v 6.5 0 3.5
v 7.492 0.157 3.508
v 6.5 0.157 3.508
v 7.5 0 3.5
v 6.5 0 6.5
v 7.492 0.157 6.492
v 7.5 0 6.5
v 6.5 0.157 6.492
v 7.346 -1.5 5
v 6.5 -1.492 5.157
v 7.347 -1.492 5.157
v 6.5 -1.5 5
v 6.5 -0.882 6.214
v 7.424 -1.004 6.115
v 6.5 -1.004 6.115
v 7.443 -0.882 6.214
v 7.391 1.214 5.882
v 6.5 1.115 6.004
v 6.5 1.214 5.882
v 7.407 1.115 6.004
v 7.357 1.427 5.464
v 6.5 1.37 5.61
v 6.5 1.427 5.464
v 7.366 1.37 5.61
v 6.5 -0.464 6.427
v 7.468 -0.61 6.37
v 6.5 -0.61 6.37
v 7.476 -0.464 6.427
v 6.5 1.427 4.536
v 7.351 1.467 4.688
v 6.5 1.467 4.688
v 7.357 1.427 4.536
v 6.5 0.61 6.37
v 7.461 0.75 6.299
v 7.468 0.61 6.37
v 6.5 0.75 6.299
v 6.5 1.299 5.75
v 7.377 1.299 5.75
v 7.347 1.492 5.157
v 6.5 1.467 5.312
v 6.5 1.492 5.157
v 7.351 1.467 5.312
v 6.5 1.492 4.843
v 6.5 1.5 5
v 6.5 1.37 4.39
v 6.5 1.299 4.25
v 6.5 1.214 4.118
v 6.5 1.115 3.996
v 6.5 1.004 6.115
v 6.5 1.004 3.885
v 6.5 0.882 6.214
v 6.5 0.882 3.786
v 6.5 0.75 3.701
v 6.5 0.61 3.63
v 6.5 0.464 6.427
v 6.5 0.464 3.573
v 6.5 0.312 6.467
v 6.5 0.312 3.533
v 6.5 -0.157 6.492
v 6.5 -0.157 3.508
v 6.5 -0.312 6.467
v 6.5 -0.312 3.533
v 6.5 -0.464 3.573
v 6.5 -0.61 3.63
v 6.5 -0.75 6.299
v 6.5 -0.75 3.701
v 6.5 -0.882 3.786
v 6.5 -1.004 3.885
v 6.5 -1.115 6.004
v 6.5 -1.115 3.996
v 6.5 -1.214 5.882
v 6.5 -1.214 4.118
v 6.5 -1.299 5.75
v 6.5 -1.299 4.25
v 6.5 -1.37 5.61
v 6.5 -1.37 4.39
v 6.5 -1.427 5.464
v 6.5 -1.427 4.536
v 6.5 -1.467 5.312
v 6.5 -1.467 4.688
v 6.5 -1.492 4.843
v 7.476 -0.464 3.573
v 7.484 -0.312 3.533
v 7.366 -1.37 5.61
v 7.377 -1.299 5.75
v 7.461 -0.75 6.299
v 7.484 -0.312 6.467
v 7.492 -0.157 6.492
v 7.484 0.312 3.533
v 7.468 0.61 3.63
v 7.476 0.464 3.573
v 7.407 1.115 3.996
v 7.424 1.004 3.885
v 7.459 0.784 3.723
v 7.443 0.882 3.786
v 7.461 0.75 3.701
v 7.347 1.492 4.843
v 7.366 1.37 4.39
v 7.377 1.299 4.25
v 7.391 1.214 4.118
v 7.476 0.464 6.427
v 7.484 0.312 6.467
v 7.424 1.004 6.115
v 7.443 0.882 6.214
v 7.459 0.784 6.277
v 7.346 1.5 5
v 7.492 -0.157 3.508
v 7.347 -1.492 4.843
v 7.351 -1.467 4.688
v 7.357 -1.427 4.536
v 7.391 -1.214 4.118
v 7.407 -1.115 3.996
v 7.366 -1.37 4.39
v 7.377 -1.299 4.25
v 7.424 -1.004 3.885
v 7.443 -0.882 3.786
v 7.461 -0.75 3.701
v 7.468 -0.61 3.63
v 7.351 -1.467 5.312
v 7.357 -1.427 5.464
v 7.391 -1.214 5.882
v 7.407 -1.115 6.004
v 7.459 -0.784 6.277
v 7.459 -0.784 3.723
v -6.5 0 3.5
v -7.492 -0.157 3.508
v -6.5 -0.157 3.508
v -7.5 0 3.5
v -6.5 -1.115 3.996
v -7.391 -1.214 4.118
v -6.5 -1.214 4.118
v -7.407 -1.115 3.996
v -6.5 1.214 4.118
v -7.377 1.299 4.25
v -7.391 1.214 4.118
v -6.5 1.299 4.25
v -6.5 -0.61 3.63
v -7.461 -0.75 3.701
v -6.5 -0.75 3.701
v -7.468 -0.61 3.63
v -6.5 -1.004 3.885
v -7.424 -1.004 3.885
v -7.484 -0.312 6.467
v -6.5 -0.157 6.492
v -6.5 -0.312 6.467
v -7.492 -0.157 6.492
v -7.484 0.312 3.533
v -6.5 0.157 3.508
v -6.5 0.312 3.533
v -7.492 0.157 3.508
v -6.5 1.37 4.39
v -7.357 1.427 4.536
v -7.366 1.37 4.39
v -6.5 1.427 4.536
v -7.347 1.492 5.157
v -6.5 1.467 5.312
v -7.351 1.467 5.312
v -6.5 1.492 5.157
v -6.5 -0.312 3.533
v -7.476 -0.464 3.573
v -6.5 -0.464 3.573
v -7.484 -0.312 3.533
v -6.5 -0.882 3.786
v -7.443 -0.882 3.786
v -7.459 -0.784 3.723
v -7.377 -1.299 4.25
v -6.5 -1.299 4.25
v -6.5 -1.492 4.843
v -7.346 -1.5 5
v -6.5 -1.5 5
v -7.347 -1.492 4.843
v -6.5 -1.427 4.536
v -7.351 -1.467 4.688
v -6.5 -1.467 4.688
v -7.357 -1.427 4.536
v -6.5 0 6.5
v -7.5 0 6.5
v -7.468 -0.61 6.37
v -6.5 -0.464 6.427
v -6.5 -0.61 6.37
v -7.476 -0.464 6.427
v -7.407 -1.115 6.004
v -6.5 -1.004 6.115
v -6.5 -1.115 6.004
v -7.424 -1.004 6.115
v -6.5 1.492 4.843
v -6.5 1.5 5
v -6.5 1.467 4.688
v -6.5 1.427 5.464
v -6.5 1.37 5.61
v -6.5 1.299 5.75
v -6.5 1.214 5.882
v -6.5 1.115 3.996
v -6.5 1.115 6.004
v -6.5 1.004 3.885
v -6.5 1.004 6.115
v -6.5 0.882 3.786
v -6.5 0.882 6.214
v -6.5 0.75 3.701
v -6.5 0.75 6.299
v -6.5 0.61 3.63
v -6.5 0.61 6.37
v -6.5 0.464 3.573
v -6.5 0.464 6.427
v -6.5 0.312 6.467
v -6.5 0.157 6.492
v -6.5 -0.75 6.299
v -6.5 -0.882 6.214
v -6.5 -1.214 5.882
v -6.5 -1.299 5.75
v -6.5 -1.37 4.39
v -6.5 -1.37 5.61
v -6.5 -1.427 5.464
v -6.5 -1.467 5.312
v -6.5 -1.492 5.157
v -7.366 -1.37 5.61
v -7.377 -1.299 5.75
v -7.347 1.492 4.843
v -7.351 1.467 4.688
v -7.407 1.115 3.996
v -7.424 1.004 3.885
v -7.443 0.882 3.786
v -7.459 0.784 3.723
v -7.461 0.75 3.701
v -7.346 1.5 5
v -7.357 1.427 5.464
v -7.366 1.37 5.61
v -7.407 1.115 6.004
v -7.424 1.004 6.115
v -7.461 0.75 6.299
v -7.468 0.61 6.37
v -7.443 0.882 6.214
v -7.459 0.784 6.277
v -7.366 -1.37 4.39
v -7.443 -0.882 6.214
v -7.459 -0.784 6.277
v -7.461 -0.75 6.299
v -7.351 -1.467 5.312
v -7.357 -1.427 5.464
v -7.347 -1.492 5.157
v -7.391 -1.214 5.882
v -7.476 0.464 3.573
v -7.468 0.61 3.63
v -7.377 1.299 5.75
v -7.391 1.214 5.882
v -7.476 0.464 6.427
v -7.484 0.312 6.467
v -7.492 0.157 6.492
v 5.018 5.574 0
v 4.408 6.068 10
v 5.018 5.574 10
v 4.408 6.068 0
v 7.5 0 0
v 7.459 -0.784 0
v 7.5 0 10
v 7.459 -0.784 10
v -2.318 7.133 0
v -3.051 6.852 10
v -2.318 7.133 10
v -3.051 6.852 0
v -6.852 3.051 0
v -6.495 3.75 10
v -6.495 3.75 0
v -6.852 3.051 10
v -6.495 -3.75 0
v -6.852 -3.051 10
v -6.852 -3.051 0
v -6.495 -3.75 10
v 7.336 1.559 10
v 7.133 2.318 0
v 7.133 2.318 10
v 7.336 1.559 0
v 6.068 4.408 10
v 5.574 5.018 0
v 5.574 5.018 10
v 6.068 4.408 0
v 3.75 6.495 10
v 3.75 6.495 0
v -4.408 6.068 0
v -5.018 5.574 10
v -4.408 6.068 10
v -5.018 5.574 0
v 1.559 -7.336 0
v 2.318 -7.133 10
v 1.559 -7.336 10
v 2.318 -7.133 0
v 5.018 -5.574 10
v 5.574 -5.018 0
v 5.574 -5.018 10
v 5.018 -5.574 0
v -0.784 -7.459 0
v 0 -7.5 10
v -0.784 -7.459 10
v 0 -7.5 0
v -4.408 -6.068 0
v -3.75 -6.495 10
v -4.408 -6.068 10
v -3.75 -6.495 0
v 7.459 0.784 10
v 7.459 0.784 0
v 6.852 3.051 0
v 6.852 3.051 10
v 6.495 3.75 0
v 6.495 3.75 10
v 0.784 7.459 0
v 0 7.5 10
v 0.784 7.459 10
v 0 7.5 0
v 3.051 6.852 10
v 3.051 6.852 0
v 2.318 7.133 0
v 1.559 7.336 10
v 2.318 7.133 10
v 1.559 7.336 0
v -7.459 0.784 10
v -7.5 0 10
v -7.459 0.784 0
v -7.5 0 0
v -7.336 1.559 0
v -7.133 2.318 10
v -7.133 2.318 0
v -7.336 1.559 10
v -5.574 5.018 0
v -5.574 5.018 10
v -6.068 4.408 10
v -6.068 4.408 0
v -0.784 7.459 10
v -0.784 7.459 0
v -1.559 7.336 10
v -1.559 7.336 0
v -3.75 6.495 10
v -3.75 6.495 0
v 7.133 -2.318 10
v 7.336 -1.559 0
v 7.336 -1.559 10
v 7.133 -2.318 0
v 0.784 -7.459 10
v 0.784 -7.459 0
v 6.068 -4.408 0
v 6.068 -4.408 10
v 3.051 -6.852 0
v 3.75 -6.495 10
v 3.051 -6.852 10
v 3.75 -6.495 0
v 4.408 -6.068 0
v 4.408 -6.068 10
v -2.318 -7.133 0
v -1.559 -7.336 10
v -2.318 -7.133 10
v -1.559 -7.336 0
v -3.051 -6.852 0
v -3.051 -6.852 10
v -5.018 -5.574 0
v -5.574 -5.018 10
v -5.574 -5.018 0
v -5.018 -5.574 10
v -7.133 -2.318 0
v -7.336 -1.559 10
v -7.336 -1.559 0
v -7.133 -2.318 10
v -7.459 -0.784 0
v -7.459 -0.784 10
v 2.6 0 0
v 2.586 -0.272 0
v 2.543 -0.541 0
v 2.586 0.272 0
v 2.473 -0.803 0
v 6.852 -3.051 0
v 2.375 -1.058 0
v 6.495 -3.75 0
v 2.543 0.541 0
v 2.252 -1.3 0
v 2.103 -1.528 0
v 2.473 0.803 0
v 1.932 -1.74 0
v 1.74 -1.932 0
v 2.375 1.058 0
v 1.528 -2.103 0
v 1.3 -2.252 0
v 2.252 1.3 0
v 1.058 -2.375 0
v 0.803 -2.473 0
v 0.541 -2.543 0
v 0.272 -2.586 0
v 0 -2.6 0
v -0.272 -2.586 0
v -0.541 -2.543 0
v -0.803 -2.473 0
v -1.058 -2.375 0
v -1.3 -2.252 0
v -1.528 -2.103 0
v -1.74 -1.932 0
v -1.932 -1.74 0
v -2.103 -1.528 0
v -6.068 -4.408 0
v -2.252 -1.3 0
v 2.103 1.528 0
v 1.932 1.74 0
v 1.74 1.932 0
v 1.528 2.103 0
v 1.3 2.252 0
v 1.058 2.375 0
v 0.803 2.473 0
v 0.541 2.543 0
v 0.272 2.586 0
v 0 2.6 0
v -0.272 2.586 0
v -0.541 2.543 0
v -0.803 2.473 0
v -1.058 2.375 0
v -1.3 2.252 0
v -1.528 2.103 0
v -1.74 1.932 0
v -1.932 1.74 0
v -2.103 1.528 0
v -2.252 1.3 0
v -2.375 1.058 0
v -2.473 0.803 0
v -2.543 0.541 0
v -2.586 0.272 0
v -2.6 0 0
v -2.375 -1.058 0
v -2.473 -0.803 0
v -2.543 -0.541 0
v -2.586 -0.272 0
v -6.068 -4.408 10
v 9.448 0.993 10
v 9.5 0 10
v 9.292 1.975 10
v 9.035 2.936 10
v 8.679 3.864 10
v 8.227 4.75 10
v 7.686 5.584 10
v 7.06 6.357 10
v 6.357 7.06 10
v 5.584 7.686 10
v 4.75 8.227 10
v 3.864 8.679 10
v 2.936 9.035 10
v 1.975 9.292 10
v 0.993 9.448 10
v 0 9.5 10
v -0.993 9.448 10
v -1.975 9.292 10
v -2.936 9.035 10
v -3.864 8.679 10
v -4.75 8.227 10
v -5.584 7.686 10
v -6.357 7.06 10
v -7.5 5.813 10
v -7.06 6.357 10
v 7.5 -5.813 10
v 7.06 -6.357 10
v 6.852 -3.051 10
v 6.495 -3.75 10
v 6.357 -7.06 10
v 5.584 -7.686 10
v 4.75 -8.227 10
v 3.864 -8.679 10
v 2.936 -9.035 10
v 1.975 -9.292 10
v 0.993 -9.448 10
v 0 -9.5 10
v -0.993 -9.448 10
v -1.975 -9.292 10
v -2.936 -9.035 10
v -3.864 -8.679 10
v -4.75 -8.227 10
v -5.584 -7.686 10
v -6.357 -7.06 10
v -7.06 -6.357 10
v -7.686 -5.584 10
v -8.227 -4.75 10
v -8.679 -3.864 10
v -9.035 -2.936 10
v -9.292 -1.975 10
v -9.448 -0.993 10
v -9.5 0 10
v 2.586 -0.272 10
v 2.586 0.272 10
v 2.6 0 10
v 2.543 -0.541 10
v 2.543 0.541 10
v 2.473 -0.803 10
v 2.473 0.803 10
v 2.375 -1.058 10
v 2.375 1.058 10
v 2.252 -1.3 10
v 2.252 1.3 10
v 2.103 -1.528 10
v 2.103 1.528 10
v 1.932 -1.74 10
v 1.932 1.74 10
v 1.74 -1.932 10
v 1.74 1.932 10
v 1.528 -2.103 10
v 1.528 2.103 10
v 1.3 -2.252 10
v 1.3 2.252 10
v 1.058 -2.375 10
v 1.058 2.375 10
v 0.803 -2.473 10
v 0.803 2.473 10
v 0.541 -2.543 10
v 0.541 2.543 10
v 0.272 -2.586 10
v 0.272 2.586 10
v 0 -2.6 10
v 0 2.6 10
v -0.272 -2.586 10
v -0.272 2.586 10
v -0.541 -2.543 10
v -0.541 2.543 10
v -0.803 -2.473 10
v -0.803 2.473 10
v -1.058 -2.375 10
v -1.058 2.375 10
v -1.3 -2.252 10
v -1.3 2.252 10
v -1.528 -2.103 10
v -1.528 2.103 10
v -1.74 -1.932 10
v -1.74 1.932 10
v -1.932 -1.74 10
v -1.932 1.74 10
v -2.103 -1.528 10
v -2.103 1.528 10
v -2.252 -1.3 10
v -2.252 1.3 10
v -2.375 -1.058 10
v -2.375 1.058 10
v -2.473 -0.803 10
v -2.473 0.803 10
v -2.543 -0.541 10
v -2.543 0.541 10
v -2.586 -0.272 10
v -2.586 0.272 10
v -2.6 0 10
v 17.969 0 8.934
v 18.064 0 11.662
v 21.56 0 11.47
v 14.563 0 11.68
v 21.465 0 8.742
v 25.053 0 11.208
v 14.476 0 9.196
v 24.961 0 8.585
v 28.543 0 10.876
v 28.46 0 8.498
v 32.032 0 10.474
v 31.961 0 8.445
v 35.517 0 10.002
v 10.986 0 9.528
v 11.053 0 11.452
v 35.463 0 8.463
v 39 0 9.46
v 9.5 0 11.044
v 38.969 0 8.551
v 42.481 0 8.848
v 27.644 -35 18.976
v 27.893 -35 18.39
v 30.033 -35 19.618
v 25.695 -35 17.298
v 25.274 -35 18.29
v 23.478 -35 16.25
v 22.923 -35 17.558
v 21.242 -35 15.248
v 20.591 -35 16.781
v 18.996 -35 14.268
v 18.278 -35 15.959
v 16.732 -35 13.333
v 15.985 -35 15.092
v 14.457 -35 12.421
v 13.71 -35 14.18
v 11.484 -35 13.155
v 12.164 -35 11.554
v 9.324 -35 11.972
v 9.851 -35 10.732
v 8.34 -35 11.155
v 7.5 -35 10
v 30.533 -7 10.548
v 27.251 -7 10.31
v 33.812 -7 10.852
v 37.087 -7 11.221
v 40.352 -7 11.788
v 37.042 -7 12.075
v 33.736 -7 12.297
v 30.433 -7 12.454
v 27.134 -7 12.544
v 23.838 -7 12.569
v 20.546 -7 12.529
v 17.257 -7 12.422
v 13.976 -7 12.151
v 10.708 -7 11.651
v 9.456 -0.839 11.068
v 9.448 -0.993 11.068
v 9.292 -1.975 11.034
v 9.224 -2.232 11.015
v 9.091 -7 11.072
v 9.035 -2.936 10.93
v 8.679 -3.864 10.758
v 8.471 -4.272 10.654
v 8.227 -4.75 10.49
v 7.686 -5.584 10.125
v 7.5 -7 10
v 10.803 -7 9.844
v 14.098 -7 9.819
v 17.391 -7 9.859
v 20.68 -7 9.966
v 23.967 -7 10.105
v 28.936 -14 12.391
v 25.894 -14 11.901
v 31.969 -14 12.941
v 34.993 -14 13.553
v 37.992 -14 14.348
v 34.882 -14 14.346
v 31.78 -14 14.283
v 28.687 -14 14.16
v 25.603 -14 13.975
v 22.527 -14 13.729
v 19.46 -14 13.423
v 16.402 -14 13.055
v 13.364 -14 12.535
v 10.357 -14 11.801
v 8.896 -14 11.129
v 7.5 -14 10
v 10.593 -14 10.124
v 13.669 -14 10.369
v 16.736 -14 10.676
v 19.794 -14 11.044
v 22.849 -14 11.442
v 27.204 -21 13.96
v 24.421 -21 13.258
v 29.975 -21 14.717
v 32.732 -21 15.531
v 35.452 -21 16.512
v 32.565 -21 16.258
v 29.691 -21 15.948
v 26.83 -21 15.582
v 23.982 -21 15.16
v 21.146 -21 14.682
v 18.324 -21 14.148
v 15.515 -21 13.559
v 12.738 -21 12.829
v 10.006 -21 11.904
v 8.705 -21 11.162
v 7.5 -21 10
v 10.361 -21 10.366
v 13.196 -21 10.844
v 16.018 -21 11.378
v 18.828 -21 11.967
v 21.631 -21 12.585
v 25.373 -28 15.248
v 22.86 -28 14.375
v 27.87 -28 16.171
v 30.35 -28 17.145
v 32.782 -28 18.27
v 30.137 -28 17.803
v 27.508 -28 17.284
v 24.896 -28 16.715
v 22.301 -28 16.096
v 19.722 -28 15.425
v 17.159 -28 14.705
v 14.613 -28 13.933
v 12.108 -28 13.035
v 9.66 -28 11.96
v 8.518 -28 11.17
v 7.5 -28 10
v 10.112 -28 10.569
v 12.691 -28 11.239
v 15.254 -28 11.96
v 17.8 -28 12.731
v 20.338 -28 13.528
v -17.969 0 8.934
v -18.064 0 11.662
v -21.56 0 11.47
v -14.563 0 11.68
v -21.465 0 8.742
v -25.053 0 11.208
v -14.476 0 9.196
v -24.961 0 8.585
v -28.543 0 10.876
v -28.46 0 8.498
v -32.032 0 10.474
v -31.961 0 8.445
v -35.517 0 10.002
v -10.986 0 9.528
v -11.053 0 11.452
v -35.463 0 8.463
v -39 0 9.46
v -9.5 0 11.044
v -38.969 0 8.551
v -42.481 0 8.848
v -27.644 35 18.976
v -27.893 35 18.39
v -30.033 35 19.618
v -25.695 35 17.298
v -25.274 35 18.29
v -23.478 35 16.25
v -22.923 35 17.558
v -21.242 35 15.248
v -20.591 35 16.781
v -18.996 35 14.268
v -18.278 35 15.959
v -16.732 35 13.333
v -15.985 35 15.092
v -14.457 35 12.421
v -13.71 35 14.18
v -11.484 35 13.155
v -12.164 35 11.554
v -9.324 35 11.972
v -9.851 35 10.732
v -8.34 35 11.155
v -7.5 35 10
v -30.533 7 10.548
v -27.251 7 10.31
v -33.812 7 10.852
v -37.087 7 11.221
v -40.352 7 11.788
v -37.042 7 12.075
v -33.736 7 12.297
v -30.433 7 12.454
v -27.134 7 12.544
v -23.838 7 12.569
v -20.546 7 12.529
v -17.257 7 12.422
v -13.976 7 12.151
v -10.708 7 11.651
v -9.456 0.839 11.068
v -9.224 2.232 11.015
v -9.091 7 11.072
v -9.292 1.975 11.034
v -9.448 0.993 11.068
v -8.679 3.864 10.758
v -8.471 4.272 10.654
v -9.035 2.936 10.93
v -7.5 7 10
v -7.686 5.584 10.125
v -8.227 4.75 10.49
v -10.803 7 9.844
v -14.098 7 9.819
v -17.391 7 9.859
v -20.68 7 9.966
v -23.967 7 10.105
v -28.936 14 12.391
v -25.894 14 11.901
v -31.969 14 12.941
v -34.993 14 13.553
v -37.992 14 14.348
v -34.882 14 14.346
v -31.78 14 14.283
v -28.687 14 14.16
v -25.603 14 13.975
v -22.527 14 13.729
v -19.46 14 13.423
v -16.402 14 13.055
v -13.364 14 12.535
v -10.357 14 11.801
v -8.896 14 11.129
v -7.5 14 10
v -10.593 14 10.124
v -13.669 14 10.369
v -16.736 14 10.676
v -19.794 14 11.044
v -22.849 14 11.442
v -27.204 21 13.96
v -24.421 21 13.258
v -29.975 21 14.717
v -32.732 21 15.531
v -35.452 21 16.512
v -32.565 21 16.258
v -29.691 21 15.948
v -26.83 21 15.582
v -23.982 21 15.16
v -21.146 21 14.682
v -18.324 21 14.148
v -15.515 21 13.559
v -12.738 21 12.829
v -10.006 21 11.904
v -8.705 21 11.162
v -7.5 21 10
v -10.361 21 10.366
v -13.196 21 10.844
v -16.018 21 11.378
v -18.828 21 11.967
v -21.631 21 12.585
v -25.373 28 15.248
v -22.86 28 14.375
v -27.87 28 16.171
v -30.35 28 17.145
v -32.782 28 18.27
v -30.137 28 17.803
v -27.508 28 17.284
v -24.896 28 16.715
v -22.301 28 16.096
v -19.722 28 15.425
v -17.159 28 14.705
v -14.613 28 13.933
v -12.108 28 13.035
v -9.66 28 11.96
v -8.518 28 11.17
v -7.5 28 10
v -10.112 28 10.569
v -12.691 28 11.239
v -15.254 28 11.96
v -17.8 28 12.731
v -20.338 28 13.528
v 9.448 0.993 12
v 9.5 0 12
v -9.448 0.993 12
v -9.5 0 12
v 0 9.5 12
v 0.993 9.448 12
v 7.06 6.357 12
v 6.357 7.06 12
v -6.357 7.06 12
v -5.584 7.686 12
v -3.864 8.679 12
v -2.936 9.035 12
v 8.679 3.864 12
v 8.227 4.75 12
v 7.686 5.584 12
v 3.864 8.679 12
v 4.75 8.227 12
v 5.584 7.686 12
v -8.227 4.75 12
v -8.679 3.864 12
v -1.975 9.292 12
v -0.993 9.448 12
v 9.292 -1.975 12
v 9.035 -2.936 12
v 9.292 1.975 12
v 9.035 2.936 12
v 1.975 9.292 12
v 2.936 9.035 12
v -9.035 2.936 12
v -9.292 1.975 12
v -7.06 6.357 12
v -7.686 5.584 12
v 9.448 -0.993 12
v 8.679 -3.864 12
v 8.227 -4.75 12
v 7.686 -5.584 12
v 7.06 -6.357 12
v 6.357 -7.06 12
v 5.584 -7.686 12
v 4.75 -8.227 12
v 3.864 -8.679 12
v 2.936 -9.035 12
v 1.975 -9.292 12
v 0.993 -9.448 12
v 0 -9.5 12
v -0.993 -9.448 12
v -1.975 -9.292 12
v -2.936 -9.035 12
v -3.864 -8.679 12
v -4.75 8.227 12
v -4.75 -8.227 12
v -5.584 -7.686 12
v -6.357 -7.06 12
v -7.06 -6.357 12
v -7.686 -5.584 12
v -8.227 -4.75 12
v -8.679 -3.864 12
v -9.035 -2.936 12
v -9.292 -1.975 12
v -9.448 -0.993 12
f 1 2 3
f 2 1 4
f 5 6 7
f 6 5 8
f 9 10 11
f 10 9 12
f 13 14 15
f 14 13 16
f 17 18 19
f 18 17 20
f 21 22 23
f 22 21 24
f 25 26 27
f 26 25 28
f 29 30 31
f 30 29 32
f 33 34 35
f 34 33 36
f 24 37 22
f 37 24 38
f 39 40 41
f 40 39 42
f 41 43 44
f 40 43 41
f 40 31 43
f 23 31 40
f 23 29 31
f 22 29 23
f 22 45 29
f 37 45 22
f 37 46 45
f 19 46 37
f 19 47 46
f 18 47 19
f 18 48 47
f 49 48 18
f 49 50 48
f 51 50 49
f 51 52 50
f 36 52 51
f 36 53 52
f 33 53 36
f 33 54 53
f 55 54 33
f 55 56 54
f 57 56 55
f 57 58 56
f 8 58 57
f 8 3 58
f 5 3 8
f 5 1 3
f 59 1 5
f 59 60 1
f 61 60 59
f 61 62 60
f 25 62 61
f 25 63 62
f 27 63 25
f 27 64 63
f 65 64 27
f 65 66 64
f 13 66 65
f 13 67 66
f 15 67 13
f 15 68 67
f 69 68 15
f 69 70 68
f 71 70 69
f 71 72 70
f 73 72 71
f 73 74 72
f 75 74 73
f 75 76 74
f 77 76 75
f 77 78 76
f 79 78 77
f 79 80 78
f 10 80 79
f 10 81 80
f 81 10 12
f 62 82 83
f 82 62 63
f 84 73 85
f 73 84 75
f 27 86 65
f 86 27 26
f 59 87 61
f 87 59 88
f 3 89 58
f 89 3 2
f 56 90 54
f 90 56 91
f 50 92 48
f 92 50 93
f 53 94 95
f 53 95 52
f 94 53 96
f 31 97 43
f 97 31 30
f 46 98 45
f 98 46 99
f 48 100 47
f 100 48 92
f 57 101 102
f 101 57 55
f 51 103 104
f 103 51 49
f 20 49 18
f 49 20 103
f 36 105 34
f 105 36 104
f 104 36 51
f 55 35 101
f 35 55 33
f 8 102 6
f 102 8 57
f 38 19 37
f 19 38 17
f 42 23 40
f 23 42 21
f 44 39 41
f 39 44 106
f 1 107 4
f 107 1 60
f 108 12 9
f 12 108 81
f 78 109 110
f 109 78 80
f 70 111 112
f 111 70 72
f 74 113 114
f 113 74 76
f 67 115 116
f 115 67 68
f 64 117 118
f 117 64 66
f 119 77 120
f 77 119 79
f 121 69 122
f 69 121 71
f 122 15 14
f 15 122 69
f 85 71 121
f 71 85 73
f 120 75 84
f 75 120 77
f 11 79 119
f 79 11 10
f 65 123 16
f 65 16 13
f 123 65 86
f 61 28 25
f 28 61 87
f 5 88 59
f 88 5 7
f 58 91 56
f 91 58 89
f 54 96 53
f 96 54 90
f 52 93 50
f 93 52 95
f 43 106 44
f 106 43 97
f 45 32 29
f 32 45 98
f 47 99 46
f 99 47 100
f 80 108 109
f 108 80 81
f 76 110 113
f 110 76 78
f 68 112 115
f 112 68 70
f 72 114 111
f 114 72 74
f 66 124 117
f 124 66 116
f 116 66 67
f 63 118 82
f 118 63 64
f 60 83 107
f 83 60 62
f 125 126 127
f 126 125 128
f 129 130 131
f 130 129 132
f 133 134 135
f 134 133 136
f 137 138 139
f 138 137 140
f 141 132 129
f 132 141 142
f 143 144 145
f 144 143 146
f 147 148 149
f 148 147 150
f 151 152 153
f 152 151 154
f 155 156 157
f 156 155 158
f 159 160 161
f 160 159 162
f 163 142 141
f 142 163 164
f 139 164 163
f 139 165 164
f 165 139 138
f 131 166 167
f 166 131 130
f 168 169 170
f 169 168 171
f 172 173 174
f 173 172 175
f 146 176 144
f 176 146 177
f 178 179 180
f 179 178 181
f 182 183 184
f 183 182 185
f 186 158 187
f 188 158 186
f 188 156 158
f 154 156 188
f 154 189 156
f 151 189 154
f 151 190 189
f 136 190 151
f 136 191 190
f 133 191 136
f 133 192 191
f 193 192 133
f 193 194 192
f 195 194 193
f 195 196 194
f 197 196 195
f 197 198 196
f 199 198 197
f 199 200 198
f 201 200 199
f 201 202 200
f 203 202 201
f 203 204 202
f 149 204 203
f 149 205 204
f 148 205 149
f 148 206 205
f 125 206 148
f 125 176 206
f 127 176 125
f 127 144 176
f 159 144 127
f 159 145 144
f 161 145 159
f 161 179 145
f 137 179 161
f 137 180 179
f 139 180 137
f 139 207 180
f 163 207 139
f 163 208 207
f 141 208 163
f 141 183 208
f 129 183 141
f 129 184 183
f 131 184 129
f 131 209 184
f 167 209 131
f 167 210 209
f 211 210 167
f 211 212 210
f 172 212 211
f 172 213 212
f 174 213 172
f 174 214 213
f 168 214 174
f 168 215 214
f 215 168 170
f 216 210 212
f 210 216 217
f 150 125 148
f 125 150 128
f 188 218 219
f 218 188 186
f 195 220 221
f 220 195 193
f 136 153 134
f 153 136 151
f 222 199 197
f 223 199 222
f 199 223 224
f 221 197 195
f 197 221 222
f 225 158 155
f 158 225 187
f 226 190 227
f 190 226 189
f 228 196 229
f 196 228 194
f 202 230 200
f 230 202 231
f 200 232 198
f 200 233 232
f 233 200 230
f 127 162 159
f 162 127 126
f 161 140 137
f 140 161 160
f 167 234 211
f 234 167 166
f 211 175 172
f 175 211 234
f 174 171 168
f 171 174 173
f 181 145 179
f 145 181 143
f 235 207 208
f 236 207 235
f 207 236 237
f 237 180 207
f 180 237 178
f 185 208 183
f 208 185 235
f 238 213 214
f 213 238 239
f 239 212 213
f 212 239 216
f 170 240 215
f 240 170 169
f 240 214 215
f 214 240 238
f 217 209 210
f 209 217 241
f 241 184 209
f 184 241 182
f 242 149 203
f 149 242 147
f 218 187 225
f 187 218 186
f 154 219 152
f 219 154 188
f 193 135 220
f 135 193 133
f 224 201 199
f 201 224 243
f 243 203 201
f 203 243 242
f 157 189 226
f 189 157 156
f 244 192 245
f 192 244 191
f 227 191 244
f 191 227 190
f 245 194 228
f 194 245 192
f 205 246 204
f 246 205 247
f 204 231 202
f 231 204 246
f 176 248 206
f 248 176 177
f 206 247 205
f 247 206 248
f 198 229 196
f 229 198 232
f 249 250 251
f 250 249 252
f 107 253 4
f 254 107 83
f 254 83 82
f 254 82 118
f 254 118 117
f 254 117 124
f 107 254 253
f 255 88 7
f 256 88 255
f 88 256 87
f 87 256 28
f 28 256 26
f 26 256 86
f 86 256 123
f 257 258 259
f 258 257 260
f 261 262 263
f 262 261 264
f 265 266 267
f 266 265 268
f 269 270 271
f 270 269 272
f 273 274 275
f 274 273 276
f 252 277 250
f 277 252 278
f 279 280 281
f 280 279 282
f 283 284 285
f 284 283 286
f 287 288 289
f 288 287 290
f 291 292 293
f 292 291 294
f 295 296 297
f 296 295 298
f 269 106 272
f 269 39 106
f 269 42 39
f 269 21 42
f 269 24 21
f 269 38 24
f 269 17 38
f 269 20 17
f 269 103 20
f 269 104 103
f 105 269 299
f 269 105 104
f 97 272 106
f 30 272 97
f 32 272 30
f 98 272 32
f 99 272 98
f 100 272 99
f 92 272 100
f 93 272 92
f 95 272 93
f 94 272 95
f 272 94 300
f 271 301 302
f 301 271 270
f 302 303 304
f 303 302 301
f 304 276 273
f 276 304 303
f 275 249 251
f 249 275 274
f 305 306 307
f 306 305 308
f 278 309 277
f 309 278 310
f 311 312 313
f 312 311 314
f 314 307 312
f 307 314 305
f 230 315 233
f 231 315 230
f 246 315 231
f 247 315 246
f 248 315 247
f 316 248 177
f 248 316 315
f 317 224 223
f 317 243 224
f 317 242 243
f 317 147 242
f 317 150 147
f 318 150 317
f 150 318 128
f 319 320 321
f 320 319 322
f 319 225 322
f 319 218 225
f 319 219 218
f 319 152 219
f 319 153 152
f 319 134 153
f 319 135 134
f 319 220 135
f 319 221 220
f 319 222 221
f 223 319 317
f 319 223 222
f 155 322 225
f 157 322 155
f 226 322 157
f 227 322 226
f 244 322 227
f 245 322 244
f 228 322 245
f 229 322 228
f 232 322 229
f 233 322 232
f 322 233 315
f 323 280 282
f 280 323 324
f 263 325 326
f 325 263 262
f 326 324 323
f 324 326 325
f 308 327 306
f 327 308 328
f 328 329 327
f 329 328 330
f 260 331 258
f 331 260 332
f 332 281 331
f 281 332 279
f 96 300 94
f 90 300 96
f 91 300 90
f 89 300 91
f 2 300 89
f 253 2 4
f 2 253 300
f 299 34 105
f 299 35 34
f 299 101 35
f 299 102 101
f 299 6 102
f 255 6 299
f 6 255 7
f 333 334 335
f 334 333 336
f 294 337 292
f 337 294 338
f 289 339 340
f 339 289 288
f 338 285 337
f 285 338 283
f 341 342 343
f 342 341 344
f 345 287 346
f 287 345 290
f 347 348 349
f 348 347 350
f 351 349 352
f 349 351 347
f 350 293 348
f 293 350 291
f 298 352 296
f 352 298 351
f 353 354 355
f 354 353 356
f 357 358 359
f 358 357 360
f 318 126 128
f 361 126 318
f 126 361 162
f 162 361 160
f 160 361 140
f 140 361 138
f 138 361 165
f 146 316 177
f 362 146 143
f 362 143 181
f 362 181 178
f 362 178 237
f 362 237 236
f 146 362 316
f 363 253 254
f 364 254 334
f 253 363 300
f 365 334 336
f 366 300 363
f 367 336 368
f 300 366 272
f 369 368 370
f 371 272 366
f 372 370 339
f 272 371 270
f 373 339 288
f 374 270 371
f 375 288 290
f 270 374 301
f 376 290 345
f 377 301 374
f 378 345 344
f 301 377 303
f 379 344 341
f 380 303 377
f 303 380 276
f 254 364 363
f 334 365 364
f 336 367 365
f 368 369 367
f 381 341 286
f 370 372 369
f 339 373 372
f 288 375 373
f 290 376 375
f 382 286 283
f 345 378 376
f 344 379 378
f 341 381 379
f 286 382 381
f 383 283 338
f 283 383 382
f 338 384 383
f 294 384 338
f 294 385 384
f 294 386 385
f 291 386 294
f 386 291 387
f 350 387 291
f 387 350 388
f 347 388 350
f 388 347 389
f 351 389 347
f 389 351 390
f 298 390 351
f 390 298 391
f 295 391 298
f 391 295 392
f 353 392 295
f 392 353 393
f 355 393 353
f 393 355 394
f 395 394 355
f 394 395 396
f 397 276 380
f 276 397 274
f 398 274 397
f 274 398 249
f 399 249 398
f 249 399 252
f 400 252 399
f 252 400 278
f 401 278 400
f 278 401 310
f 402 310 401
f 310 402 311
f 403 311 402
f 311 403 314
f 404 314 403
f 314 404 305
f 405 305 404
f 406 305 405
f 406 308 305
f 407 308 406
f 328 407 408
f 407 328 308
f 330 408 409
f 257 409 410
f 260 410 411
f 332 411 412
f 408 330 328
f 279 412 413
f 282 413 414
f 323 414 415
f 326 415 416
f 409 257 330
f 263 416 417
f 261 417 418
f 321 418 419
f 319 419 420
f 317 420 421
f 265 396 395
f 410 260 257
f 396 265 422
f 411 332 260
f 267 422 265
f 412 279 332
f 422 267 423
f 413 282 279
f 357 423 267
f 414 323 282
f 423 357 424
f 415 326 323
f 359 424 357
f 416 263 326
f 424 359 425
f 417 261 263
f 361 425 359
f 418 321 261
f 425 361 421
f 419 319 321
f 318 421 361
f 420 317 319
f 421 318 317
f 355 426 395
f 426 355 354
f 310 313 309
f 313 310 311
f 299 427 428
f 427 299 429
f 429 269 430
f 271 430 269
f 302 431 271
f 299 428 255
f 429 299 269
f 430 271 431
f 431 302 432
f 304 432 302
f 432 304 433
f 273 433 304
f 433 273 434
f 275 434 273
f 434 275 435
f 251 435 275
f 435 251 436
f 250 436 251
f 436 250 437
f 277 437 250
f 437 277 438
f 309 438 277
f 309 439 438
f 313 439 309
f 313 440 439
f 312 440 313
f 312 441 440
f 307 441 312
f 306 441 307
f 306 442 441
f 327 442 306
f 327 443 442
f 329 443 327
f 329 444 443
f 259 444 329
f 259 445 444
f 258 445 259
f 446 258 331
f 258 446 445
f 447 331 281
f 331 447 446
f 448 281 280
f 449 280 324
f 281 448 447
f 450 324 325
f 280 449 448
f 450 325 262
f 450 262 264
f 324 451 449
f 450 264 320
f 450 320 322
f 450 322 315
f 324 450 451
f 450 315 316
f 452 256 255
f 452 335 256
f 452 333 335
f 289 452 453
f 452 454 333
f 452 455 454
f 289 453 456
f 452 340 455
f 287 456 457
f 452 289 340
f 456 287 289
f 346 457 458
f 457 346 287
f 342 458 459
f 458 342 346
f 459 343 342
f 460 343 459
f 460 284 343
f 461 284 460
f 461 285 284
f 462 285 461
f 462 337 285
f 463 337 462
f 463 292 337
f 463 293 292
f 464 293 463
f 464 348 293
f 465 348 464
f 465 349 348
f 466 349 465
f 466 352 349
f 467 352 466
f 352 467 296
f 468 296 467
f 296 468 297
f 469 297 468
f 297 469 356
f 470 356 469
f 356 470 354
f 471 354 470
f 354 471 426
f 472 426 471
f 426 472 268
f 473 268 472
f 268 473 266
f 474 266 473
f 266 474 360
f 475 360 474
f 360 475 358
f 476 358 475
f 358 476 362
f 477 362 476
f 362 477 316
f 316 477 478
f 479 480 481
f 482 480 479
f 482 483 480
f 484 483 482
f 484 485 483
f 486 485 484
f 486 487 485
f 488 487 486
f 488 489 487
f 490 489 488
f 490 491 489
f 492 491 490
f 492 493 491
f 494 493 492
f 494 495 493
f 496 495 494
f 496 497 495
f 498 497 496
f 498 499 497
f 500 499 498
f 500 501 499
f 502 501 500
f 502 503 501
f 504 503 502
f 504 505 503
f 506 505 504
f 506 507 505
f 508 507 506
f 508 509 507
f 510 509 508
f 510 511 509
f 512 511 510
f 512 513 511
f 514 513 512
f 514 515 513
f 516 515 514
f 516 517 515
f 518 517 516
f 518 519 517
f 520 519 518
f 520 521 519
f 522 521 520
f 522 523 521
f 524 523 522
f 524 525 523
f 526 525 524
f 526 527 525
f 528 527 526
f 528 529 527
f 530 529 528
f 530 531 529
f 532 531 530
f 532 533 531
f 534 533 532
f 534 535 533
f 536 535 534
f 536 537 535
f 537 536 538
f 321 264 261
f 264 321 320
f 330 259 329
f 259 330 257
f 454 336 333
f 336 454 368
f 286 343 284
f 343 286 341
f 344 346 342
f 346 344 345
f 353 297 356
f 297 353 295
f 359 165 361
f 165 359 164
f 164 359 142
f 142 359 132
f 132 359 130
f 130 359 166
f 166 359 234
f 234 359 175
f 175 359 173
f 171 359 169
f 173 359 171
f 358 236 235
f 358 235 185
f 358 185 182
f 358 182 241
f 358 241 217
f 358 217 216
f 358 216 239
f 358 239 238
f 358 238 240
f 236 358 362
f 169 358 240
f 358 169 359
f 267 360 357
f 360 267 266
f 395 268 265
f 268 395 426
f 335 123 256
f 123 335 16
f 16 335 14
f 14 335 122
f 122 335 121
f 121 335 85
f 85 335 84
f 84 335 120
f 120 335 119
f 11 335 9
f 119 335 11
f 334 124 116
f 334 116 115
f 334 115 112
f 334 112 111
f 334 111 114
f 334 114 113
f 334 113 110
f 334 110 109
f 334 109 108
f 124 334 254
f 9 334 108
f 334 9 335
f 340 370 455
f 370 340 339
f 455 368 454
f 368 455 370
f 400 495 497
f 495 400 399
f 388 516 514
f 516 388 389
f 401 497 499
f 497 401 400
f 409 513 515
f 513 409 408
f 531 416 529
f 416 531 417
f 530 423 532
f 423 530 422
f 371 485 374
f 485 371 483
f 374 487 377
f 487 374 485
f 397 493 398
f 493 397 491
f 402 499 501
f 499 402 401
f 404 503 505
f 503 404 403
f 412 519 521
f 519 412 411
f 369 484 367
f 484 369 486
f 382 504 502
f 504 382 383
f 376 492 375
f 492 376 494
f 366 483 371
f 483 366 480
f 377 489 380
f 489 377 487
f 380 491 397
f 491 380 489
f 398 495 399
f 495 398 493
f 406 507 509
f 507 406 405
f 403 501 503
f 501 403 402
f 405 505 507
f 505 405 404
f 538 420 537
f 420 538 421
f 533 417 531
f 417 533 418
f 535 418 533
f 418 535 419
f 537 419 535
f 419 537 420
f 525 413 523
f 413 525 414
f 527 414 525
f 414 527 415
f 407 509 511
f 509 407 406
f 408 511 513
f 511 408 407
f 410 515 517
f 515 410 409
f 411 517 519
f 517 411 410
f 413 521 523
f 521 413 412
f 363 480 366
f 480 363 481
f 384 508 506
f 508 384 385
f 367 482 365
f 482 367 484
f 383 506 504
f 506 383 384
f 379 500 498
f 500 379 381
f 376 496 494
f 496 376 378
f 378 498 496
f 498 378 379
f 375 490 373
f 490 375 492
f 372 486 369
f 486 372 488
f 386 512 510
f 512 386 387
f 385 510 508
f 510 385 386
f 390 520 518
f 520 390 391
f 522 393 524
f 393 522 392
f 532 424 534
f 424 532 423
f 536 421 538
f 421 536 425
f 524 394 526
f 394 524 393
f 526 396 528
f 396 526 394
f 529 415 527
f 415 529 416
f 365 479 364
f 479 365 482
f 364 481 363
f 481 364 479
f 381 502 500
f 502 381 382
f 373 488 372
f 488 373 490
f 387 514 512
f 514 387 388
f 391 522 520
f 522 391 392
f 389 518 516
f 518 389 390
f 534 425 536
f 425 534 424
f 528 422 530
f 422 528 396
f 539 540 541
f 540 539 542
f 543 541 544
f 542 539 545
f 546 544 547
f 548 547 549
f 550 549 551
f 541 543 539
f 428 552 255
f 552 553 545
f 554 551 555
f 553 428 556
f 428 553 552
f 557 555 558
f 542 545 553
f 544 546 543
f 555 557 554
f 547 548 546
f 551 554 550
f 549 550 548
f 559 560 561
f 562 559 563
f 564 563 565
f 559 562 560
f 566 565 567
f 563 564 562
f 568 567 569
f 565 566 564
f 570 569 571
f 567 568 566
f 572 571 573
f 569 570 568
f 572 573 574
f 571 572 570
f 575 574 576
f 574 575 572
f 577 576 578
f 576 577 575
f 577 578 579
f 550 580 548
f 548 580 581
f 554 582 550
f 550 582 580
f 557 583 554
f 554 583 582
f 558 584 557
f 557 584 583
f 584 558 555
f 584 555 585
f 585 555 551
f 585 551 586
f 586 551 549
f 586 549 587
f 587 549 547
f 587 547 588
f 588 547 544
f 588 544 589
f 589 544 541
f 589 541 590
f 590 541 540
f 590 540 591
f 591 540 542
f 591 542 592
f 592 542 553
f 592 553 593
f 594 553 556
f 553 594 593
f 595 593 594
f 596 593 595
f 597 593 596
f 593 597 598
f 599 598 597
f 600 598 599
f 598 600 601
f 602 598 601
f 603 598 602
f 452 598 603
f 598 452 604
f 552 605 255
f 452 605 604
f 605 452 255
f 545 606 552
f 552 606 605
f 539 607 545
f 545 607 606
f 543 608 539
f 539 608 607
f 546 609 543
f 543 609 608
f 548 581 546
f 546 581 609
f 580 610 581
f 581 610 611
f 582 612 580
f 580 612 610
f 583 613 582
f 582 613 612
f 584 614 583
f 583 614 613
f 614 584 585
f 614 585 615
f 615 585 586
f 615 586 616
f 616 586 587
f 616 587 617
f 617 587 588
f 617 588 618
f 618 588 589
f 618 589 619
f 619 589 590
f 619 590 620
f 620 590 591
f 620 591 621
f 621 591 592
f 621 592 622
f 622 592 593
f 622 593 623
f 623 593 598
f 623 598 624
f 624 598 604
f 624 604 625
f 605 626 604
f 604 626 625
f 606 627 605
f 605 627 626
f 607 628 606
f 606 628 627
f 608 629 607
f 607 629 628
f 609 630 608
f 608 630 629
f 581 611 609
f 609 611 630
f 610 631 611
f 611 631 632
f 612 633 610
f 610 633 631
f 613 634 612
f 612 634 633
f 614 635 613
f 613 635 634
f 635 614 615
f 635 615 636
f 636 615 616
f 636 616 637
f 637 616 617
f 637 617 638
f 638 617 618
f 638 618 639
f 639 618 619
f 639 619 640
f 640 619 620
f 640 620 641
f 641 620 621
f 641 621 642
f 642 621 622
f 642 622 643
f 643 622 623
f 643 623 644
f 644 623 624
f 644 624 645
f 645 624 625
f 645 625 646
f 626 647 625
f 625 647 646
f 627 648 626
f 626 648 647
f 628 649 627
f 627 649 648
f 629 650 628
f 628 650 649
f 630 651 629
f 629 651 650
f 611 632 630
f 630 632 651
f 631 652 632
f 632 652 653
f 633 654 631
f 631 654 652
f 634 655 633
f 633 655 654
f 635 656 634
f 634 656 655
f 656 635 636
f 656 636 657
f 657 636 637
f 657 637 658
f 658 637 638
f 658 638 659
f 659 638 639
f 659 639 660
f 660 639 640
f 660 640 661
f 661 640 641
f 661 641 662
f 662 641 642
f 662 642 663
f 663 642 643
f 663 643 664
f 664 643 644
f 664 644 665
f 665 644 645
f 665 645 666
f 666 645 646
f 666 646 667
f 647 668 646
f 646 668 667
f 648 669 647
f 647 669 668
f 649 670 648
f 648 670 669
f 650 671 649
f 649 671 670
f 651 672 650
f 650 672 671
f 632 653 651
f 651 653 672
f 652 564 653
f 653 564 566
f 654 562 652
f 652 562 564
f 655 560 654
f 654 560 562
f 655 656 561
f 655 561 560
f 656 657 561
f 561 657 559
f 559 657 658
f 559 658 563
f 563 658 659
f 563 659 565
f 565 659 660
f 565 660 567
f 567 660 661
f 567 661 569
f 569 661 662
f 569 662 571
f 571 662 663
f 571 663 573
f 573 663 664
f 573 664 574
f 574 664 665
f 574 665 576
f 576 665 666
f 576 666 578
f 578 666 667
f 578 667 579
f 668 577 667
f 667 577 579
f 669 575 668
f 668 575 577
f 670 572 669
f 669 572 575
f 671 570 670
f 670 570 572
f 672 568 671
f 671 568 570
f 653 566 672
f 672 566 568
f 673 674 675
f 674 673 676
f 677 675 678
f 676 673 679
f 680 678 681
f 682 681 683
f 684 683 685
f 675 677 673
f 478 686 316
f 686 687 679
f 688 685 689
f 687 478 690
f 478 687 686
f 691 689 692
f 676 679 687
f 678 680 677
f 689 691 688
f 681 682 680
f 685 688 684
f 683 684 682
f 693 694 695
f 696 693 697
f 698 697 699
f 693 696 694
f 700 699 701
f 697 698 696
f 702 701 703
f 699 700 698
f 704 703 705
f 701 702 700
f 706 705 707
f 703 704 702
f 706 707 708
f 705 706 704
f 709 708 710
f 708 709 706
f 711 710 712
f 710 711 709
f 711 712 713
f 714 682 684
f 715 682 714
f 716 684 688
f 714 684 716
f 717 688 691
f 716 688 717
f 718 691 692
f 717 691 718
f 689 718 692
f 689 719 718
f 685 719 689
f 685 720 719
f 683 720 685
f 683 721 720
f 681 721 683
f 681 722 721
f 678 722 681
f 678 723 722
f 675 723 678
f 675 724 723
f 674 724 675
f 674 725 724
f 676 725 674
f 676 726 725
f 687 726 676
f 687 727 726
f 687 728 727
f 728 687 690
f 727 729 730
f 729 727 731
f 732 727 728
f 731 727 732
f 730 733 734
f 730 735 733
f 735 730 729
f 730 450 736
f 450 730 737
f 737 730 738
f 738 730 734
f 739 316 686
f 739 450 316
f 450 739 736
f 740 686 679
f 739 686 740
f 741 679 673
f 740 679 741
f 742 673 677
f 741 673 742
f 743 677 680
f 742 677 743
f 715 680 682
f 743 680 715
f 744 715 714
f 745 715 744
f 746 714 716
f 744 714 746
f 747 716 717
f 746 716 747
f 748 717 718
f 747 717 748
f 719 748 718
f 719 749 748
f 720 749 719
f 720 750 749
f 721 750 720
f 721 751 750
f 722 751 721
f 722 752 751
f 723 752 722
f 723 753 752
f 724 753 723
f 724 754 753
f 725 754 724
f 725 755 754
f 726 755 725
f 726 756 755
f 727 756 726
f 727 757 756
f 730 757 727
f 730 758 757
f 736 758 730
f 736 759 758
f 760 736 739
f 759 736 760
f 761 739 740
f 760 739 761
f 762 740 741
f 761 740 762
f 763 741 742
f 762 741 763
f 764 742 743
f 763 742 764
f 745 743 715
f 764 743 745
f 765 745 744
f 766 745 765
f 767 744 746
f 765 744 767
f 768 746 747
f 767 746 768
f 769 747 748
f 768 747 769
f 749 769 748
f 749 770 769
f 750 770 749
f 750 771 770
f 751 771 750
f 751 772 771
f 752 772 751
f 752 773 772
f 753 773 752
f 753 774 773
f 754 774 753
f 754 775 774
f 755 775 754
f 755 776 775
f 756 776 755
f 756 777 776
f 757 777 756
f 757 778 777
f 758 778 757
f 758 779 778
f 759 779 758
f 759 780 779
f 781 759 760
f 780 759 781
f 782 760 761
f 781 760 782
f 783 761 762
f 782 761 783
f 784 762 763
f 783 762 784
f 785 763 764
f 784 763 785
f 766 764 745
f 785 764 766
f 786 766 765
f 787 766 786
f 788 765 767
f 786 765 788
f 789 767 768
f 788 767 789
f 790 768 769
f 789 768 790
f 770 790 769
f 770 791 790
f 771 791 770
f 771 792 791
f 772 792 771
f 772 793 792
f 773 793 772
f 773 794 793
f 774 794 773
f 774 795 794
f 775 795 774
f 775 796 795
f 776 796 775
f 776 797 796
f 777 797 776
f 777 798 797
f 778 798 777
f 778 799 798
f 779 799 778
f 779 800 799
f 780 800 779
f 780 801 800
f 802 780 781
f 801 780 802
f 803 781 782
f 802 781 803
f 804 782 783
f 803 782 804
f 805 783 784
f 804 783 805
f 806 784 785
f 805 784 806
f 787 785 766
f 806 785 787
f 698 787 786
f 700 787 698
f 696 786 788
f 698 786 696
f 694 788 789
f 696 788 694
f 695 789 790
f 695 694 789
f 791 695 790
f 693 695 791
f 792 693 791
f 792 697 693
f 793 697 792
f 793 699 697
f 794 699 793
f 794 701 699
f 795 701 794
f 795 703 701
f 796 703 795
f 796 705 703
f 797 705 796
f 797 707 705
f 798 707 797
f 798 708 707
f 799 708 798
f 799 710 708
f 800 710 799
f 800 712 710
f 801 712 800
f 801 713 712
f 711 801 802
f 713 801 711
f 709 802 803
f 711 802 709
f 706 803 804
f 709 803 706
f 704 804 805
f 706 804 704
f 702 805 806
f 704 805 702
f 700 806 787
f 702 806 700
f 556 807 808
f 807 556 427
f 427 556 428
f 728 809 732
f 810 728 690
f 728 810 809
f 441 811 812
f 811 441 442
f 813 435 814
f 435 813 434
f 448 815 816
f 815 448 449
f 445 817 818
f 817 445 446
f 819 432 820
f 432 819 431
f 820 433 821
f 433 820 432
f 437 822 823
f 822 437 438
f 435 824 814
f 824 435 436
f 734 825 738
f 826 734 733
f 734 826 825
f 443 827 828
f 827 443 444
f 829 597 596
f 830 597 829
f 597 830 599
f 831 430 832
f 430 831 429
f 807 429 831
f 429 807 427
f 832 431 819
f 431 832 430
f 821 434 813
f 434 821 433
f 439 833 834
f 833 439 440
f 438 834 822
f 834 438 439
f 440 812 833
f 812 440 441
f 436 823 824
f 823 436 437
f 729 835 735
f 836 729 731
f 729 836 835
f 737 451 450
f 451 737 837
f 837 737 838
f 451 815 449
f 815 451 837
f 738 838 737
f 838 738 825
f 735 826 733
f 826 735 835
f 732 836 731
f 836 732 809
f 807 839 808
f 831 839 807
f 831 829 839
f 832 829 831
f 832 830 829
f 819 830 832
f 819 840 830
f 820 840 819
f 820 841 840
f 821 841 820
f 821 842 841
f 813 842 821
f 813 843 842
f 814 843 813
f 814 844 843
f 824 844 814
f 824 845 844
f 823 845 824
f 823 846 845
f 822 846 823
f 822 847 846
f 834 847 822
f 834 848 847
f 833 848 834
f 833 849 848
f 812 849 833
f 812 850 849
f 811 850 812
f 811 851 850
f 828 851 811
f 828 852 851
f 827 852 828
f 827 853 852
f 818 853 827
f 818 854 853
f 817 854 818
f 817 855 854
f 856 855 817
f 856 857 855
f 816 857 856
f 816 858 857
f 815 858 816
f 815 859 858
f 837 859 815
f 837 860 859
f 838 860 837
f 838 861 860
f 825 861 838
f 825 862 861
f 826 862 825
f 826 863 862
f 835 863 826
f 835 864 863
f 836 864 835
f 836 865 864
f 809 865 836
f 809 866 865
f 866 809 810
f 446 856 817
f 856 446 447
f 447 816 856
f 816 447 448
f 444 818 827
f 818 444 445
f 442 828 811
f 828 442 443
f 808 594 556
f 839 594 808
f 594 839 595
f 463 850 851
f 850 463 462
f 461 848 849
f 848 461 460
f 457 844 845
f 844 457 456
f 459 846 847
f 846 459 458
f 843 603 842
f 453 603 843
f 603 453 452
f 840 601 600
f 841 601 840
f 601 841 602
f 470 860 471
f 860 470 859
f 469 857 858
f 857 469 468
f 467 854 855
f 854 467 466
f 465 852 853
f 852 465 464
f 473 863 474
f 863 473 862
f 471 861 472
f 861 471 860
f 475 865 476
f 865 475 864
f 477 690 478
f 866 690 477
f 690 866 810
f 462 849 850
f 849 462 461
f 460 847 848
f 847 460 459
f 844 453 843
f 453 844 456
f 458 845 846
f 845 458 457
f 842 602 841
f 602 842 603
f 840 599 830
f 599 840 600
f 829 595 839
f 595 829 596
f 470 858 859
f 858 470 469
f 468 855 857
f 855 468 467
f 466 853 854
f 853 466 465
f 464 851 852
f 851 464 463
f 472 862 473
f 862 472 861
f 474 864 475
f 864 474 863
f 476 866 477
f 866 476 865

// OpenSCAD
/*
 * COMPLETE MOTOR + IMPELLER ASSEMBLY
 * For CFD fluid testing and visualization
 * 
 * This model includes:
 *   - Brushless motor (2204-2206 size)
 *   - Motor shaft (5mm)
 *   - Impeller hub
 *   - 3 impeller variants (bladeless, AI-blades, hybrid)
 *   - Mounting plate
 * 
 * Usage:
 *   - Render full assembly: F6
 *   - Export for CFD: Set EXPORT_MODE = "impeller_only"
 *   - Change design: Set IMPELLER_TYPE = "bladeless" | "bladed" | "hybrid"
 */

// ============================================================================
// CONFIGURATION PARAMETERS (AI-Optimizable)
// ============================================================================

// General Settings
$fn = 60;  // Resolution for CFD export (increase to 100 for final)

// Export Mode
EXPORT_MODE = "impeller_only";  // Options: "full_assembly", "impeller_only", "motor_only"

// Impeller Type
IMPELLER_TYPE = "bladed";  // Options: "bladeless", "bladed", "hybrid"

// Motor Specifications (2204-2206 brushless)
MOTOR_DIAMETER = 28;         // mm
MOTOR_HEIGHT = 25;           // mm
MOTOR_SHAFT_DIAMETER = 5;    // mm (standard)
MOTOR_SHAFT_LENGTH = 15;     // mm (extends above motor)
MOTOR_MOUNT_PATTERN = 16;    // mm (16x16 or 19x19 common)
MOTOR_SCREW_DIAMETER = 3;    // M3 screws

// Impeller Parameters - BLADELESS
BLADELESS_OUTER_DIAMETER = 90;    // mm
BLADELESS_AIR_GAP = 0.8;          // mm (optimize: 0.6-1.2)
BLADELESS_THROAT_RATIO = 0.72;    // (optimize: 0.65-0.80)
BLADELESS_EXPANSION_ANGLE = 18;   // degrees (optimize: 12-25)
BLADELESS_RING_THICKNESS = 3;     // mm (optimize: 2-4)
BLADELESS_HEIGHT = 24;            // mm

// Impeller Parameters - BLADED
BLADED_DIAMETER = 85;
BLADED_HUB_DIAMETER = 15;         // mm (optimize: 12-20)
BLADED_BLADE_COUNT = 2;
BLADED_ROOT_CHORD = 35;
BLADED_TIP_CHORD_RATIO = 0.7;    // (optimize: 0.6-0.8)
BLADED_BLADE_THICKNESS = 2;       // mm (optimize: 1.5-3)
BLADED_BLADE_TWIST = -25;
BLADED_ATTACK_ANGLE = -2;
BLADED_BLADE_HEIGHT = 12;         // mm (optimize: 10-15)

// Hub Parameters
HUB_DIAMETER = 15;
HUB_HEIGHT = 10;
HUB_SET_SCREW_DIAMETER = 3;  // M3 set screw

// Mounting Plate
PLATE_SIZE = 50;
PLATE_THICKNESS = 3;

// ============================================================================
// MOTOR MODEL
// ============================================================================

module brushless_motor_2204() {
    color("DarkSlateGray") {
        // Motor can (bell)
        difference() {
            cylinder(h=MOTOR_HEIGHT, d=MOTOR_DIAMETER);
            
            // Hollow inside (weight reduction visualization)
            translate([0, 0, -0.5])
                cylinder(h=MOTOR_HEIGHT - 5, d=MOTOR_DIAMETER - 4);
            
            // Mounting holes
            for(i = [0:3]) {
                rotate([0, 0, i * 90])
                    translate([MOTOR_MOUNT_PATTERN/2, 0, MOTOR_HEIGHT/2])
                        rotate([90, 0, 0])
                            cylinder(h=MOTOR_DIAMETER, d=MOTOR_SCREW_DIAMETER, center=true);
            }
        }
        
        // Motor base
        translate([0, 0, -3])
            cylinder(h=3, d=MOTOR_DIAMETER - 2);
    }
    
    // Motor shaft
    color("Silver")
        translate([0, 0, MOTOR_HEIGHT])
            cylinder(h=MOTOR_SHAFT_LENGTH, d=MOTOR_SHAFT_DIAMETER);
    
    // Shaft tip (for hub attachment)
    color("Silver")
        translate([0, 0, MOTOR_HEIGHT + MOTOR_SHAFT_LENGTH])
            cylinder(h=2, d=MOTOR_SHAFT_DIAMETER - 0.5);
}

// ============================================================================
// IMPELLER HUB
// ============================================================================

module impeller_hub() {
    color("Gray")
    difference() {
        // Hub body
        cylinder(h=HUB_HEIGHT, d=HUB_DIAMETER);
        
        // Shaft hole (5mm + 0.2mm clearance)
        translate([0, 0, -0.5])
            cylinder(h=HUB_HEIGHT + 1, d=MOTOR_SHAFT_DIAMETER + 0.2);
        
        // Set screw holes (2x for balance)
        for(i = [0:1]) {
            rotate([0, 0, i * 180])
                translate([HUB_DIAMETER/2 - 1, 0, HUB_HEIGHT/2])
                    rotate([0, 90, 0])
                        cylinder(h=5, d=HUB_SET_SCREW_DIAMETER);
        }
    }
}

// ============================================================================
// BLADELESS IMPELLER (Dyson-style)
// ============================================================================

module bladeless_impeller() {
    outer_r = BLADELESS_OUTER_DIAMETER / 2;
    throat_r = outer_r * BLADELESS_THROAT_RATIO;
    gap = BLADELESS_AIR_GAP;
    
    color("SkyBlue", 0.7)
    difference() {
        // Outer ring
        rotate_extrude()
            translate([outer_r - BLADELESS_RING_THICKNESS/2, BLADELESS_HEIGHT/2, 0])
                circle(d=BLADELESS_RING_THICKNESS + BLADELESS_HEIGHT);
        
        // Inner air gap (critical for Coanda effect)
        rotate_extrude()
            translate([outer_r - gap - BLADELESS_RING_THICKNESS/2, BLADELESS_HEIGHT/2, 0])
                circle(d=BLADELESS_RING_THICKNESS + BLADELESS_HEIGHT - 2*gap);
    }
    
    // Base plate (connects to hub)
    color("SkyBlue", 0.7)
    translate([0, 0, -2])
        difference() {
            cylinder(h=2, d=outer_r * 2);
            translate([0, 0, -0.5])
                cylinder(h=3, d=HUB_DIAMETER + 1);
        }
    
    // Air inlet (bell-shaped for smooth flow)
    color("SkyBlue", 0.7)
    translate([0, 0, -2]) {
        difference() {
            cylinder(h=15, d1=throat_r * 2, d2=outer_r * 1.8);
            translate([0, 0, -0.5])
                cylinder(h=16, d1=throat_r * 2 - 3, d2=outer_r * 1.8 - 3);
        }
    }
}

// ============================================================================
// AI-OPTIMIZED BLADED IMPELLER (NACA 2412 profile)
// ============================================================================

module naca_2412_blade(chord, height, twist_angle, attack_angle) {
    // Simplified NACA 2412 airfoil profile
    // Using parametric approximation for 3D printing
    
    color("LightSteelBlue", 0.8)
    linear_extrude(height=height, twist=twist_angle, scale=BLADED_TIP_CHORD_RATIO) {
        rotate([0, 0, attack_angle])
        polygon([
            // Upper surface (cambered)
            [0, 0],
            [chord * 0.05, chord * 0.03],
            [chord * 0.1, chord * 0.045],
            [chord * 0.2, chord * 0.055],
            [chord * 0.3, chord * 0.058],
            [chord * 0.4, chord * 0.056],
            [chord * 0.5, chord * 0.052],
            [chord * 0.6, chord * 0.046],
            [chord * 0.7, chord * 0.038],
            [chord * 0.8, chord * 0.028],
            [chord * 0.9, chord * 0.016],
            [chord * 1.0, chord * 0.002],
            // Lower surface (less cambered)
            [chord * 0.9, -chord * 0.010],
            [chord * 0.8, -chord * 0.016],
            [chord * 0.7, -chord * 0.020],
            [chord * 0.6, -chord * 0.022],
            [chord * 0.5, -chord * 0.023],
            [chord * 0.4, -chord * 0.022],
            [chord * 0.3, -chord * 0.020],
            [chord * 0.2, -chord * 0.016],
            [chord * 0.1, -chord * 0.010],
            [chord * 0.05, -chord * 0.005],
        ]);
    }
}

module bladed_impeller() {
    // Blades
    for(i = [0 : BLADED_BLADE_COUNT - 1]) {
        rotate([0, 0, i * (360 / BLADED_BLADE_COUNT)])
            translate([BLADED_HUB_DIAMETER/2, 0, 0])
                rotate([90, 0, 0])
                    naca_2412_blade(
                        BLADED_ROOT_CHORD, 
                        (BLADED_DIAMETER - BLADED_HUB_DIAMETER) / 2,
                        BLADED_BLADE_TWIST,
                        BLADED_ATTACK_ANGLE
                    );
    }
    
    // Hub disk (connects blades)
    color("LightSteelBlue", 0.8)
    cylinder(h=2, d=BLADED_HUB_DIAMETER + 4);
}

// ============================================================================
// HYBRID IMPELLER (Blades inside bladeless ring)
// ============================================================================

module hybrid_impeller() {
    // Outer bladeless ring
    bladeless_impeller();
    
    // Inner bladed impeller (scaled down to fit)
    scale([0.85, 0.85, 1])
        bladed_impeller();
}

// ============================================================================
// MOUNTING PLATE
// ============================================================================

module mounting_plate() {
    color("DimGray")
    difference() {
        // Base plate
        translate([-PLATE_SIZE/2, -PLATE_SIZE/2, 0])
            cube([PLATE_SIZE, PLATE_SIZE, PLATE_THICKNESS]);
        
        // Center hole for motor shaft
        translate([0, 0, -0.5])
            cylinder(h=PLATE_THICKNESS + 1, d=MOTOR_DIAMETER + 2);
        
        // Motor mounting holes
        for(i = [0:3]) {
            rotate([0, 0, i * 90])
                translate([MOTOR_MOUNT_PATTERN/2, 0, -0.5])
                    cylinder(h=PLATE_THICKNESS + 1, d=MOTOR_SCREW_DIAMETER);
        }
    }
}

// ============================================================================
// COMPLETE ASSEMBLY
// ============================================================================

module complete_assembly() {
    // Mounting plate (bottom)
    translate([0, 0, -PLATE_THICKNESS])
        mounting_plate();
    
    // Motor
    translate([0, 0, 0])
        brushless_motor_2204();
    
    // Hub (on shaft)
    translate([0, 0, MOTOR_HEIGHT + MOTOR_SHAFT_LENGTH - 2])
        impeller_hub();
    
    // Impeller (on hub)
    translate([0, 0, MOTOR_HEIGHT + MOTOR_SHAFT_LENGTH + HUB_HEIGHT]) {
        if (IMPELLER_TYPE == "bladeless") {
            bladeless_impeller();
        } else if (IMPELLER_TYPE == "bladed") {
            bladed_impeller();
        } else if (IMPELLER_TYPE == "hybrid") {
            hybrid_impeller();
        }
    }
}

// ============================================================================
// RENDER BASED ON EXPORT MODE
// ============================================================================

if (EXPORT_MODE == "full_assembly") {
    complete_assembly();
} 
else if (EXPORT_MODE == "impeller_only") {
    // For CFD testing - impeller + hub only
    impeller_hub();
    translate([0, 0, HUB_HEIGHT]) {
        if (IMPELLER_TYPE == "bladeless") {
            bladeless_impeller();
        } else if (IMPELLER_TYPE == "bladed") {
            bladed_impeller();
        } else if (IMPELLER_TYPE == "hybrid") {
            hybrid_impeller();
        }
    }
}
else if (EXPORT_MODE == "motor_only") {
    brushless_motor_2204();
}

// ============================================================================
// ANNOTATIONS FOR VISUALIZATION
// ============================================================================

// Uncomment to show dimensions
/*
color("Red", 0.3)
translate([BLADED_DIAMETER/2 + 10, 0, 20])
    text(str("Ø", BLADED_DIAMETER, "mm"), size=5, halign="left");

color("Green", 0.3)
translate([0, BLADED_DIAMETER/2 + 10, 20])
    text(str(BLADED_BLADE_COUNT, " blades"), size=5, halign="center");
*/

// ============================================================================
// EXPORT NOTES
// ============================================================================

/*
 * TO EXPORT FOR CFD TESTING:
 * 
 * 1. Set EXPORT_MODE = "impeller_only"
 * 2. Set IMPELLER_TYPE = "bladeless" (or "bladed" or "hybrid")
 * 3. Press F6 to render
 * 4. File → Export → Export as STL
 * 5. Use filename: impeller_bladeless_fn60.stl
 * 
 * FOR OPTIMIZATION:
 * - Modify parameters at top (marked with "optimize:")
 * - Re-render and export
 * - Upload to SimScale for CFD
 * - Compare results
 * 
 * RECOMMENDED CFD SETTINGS:
 * - Solver: k-omega SST
 * - RPM: 5000, 7000, 9000
 * - Mesh: 3-5M cells
 * - Boundary: Rotating zone on impeller
 */
